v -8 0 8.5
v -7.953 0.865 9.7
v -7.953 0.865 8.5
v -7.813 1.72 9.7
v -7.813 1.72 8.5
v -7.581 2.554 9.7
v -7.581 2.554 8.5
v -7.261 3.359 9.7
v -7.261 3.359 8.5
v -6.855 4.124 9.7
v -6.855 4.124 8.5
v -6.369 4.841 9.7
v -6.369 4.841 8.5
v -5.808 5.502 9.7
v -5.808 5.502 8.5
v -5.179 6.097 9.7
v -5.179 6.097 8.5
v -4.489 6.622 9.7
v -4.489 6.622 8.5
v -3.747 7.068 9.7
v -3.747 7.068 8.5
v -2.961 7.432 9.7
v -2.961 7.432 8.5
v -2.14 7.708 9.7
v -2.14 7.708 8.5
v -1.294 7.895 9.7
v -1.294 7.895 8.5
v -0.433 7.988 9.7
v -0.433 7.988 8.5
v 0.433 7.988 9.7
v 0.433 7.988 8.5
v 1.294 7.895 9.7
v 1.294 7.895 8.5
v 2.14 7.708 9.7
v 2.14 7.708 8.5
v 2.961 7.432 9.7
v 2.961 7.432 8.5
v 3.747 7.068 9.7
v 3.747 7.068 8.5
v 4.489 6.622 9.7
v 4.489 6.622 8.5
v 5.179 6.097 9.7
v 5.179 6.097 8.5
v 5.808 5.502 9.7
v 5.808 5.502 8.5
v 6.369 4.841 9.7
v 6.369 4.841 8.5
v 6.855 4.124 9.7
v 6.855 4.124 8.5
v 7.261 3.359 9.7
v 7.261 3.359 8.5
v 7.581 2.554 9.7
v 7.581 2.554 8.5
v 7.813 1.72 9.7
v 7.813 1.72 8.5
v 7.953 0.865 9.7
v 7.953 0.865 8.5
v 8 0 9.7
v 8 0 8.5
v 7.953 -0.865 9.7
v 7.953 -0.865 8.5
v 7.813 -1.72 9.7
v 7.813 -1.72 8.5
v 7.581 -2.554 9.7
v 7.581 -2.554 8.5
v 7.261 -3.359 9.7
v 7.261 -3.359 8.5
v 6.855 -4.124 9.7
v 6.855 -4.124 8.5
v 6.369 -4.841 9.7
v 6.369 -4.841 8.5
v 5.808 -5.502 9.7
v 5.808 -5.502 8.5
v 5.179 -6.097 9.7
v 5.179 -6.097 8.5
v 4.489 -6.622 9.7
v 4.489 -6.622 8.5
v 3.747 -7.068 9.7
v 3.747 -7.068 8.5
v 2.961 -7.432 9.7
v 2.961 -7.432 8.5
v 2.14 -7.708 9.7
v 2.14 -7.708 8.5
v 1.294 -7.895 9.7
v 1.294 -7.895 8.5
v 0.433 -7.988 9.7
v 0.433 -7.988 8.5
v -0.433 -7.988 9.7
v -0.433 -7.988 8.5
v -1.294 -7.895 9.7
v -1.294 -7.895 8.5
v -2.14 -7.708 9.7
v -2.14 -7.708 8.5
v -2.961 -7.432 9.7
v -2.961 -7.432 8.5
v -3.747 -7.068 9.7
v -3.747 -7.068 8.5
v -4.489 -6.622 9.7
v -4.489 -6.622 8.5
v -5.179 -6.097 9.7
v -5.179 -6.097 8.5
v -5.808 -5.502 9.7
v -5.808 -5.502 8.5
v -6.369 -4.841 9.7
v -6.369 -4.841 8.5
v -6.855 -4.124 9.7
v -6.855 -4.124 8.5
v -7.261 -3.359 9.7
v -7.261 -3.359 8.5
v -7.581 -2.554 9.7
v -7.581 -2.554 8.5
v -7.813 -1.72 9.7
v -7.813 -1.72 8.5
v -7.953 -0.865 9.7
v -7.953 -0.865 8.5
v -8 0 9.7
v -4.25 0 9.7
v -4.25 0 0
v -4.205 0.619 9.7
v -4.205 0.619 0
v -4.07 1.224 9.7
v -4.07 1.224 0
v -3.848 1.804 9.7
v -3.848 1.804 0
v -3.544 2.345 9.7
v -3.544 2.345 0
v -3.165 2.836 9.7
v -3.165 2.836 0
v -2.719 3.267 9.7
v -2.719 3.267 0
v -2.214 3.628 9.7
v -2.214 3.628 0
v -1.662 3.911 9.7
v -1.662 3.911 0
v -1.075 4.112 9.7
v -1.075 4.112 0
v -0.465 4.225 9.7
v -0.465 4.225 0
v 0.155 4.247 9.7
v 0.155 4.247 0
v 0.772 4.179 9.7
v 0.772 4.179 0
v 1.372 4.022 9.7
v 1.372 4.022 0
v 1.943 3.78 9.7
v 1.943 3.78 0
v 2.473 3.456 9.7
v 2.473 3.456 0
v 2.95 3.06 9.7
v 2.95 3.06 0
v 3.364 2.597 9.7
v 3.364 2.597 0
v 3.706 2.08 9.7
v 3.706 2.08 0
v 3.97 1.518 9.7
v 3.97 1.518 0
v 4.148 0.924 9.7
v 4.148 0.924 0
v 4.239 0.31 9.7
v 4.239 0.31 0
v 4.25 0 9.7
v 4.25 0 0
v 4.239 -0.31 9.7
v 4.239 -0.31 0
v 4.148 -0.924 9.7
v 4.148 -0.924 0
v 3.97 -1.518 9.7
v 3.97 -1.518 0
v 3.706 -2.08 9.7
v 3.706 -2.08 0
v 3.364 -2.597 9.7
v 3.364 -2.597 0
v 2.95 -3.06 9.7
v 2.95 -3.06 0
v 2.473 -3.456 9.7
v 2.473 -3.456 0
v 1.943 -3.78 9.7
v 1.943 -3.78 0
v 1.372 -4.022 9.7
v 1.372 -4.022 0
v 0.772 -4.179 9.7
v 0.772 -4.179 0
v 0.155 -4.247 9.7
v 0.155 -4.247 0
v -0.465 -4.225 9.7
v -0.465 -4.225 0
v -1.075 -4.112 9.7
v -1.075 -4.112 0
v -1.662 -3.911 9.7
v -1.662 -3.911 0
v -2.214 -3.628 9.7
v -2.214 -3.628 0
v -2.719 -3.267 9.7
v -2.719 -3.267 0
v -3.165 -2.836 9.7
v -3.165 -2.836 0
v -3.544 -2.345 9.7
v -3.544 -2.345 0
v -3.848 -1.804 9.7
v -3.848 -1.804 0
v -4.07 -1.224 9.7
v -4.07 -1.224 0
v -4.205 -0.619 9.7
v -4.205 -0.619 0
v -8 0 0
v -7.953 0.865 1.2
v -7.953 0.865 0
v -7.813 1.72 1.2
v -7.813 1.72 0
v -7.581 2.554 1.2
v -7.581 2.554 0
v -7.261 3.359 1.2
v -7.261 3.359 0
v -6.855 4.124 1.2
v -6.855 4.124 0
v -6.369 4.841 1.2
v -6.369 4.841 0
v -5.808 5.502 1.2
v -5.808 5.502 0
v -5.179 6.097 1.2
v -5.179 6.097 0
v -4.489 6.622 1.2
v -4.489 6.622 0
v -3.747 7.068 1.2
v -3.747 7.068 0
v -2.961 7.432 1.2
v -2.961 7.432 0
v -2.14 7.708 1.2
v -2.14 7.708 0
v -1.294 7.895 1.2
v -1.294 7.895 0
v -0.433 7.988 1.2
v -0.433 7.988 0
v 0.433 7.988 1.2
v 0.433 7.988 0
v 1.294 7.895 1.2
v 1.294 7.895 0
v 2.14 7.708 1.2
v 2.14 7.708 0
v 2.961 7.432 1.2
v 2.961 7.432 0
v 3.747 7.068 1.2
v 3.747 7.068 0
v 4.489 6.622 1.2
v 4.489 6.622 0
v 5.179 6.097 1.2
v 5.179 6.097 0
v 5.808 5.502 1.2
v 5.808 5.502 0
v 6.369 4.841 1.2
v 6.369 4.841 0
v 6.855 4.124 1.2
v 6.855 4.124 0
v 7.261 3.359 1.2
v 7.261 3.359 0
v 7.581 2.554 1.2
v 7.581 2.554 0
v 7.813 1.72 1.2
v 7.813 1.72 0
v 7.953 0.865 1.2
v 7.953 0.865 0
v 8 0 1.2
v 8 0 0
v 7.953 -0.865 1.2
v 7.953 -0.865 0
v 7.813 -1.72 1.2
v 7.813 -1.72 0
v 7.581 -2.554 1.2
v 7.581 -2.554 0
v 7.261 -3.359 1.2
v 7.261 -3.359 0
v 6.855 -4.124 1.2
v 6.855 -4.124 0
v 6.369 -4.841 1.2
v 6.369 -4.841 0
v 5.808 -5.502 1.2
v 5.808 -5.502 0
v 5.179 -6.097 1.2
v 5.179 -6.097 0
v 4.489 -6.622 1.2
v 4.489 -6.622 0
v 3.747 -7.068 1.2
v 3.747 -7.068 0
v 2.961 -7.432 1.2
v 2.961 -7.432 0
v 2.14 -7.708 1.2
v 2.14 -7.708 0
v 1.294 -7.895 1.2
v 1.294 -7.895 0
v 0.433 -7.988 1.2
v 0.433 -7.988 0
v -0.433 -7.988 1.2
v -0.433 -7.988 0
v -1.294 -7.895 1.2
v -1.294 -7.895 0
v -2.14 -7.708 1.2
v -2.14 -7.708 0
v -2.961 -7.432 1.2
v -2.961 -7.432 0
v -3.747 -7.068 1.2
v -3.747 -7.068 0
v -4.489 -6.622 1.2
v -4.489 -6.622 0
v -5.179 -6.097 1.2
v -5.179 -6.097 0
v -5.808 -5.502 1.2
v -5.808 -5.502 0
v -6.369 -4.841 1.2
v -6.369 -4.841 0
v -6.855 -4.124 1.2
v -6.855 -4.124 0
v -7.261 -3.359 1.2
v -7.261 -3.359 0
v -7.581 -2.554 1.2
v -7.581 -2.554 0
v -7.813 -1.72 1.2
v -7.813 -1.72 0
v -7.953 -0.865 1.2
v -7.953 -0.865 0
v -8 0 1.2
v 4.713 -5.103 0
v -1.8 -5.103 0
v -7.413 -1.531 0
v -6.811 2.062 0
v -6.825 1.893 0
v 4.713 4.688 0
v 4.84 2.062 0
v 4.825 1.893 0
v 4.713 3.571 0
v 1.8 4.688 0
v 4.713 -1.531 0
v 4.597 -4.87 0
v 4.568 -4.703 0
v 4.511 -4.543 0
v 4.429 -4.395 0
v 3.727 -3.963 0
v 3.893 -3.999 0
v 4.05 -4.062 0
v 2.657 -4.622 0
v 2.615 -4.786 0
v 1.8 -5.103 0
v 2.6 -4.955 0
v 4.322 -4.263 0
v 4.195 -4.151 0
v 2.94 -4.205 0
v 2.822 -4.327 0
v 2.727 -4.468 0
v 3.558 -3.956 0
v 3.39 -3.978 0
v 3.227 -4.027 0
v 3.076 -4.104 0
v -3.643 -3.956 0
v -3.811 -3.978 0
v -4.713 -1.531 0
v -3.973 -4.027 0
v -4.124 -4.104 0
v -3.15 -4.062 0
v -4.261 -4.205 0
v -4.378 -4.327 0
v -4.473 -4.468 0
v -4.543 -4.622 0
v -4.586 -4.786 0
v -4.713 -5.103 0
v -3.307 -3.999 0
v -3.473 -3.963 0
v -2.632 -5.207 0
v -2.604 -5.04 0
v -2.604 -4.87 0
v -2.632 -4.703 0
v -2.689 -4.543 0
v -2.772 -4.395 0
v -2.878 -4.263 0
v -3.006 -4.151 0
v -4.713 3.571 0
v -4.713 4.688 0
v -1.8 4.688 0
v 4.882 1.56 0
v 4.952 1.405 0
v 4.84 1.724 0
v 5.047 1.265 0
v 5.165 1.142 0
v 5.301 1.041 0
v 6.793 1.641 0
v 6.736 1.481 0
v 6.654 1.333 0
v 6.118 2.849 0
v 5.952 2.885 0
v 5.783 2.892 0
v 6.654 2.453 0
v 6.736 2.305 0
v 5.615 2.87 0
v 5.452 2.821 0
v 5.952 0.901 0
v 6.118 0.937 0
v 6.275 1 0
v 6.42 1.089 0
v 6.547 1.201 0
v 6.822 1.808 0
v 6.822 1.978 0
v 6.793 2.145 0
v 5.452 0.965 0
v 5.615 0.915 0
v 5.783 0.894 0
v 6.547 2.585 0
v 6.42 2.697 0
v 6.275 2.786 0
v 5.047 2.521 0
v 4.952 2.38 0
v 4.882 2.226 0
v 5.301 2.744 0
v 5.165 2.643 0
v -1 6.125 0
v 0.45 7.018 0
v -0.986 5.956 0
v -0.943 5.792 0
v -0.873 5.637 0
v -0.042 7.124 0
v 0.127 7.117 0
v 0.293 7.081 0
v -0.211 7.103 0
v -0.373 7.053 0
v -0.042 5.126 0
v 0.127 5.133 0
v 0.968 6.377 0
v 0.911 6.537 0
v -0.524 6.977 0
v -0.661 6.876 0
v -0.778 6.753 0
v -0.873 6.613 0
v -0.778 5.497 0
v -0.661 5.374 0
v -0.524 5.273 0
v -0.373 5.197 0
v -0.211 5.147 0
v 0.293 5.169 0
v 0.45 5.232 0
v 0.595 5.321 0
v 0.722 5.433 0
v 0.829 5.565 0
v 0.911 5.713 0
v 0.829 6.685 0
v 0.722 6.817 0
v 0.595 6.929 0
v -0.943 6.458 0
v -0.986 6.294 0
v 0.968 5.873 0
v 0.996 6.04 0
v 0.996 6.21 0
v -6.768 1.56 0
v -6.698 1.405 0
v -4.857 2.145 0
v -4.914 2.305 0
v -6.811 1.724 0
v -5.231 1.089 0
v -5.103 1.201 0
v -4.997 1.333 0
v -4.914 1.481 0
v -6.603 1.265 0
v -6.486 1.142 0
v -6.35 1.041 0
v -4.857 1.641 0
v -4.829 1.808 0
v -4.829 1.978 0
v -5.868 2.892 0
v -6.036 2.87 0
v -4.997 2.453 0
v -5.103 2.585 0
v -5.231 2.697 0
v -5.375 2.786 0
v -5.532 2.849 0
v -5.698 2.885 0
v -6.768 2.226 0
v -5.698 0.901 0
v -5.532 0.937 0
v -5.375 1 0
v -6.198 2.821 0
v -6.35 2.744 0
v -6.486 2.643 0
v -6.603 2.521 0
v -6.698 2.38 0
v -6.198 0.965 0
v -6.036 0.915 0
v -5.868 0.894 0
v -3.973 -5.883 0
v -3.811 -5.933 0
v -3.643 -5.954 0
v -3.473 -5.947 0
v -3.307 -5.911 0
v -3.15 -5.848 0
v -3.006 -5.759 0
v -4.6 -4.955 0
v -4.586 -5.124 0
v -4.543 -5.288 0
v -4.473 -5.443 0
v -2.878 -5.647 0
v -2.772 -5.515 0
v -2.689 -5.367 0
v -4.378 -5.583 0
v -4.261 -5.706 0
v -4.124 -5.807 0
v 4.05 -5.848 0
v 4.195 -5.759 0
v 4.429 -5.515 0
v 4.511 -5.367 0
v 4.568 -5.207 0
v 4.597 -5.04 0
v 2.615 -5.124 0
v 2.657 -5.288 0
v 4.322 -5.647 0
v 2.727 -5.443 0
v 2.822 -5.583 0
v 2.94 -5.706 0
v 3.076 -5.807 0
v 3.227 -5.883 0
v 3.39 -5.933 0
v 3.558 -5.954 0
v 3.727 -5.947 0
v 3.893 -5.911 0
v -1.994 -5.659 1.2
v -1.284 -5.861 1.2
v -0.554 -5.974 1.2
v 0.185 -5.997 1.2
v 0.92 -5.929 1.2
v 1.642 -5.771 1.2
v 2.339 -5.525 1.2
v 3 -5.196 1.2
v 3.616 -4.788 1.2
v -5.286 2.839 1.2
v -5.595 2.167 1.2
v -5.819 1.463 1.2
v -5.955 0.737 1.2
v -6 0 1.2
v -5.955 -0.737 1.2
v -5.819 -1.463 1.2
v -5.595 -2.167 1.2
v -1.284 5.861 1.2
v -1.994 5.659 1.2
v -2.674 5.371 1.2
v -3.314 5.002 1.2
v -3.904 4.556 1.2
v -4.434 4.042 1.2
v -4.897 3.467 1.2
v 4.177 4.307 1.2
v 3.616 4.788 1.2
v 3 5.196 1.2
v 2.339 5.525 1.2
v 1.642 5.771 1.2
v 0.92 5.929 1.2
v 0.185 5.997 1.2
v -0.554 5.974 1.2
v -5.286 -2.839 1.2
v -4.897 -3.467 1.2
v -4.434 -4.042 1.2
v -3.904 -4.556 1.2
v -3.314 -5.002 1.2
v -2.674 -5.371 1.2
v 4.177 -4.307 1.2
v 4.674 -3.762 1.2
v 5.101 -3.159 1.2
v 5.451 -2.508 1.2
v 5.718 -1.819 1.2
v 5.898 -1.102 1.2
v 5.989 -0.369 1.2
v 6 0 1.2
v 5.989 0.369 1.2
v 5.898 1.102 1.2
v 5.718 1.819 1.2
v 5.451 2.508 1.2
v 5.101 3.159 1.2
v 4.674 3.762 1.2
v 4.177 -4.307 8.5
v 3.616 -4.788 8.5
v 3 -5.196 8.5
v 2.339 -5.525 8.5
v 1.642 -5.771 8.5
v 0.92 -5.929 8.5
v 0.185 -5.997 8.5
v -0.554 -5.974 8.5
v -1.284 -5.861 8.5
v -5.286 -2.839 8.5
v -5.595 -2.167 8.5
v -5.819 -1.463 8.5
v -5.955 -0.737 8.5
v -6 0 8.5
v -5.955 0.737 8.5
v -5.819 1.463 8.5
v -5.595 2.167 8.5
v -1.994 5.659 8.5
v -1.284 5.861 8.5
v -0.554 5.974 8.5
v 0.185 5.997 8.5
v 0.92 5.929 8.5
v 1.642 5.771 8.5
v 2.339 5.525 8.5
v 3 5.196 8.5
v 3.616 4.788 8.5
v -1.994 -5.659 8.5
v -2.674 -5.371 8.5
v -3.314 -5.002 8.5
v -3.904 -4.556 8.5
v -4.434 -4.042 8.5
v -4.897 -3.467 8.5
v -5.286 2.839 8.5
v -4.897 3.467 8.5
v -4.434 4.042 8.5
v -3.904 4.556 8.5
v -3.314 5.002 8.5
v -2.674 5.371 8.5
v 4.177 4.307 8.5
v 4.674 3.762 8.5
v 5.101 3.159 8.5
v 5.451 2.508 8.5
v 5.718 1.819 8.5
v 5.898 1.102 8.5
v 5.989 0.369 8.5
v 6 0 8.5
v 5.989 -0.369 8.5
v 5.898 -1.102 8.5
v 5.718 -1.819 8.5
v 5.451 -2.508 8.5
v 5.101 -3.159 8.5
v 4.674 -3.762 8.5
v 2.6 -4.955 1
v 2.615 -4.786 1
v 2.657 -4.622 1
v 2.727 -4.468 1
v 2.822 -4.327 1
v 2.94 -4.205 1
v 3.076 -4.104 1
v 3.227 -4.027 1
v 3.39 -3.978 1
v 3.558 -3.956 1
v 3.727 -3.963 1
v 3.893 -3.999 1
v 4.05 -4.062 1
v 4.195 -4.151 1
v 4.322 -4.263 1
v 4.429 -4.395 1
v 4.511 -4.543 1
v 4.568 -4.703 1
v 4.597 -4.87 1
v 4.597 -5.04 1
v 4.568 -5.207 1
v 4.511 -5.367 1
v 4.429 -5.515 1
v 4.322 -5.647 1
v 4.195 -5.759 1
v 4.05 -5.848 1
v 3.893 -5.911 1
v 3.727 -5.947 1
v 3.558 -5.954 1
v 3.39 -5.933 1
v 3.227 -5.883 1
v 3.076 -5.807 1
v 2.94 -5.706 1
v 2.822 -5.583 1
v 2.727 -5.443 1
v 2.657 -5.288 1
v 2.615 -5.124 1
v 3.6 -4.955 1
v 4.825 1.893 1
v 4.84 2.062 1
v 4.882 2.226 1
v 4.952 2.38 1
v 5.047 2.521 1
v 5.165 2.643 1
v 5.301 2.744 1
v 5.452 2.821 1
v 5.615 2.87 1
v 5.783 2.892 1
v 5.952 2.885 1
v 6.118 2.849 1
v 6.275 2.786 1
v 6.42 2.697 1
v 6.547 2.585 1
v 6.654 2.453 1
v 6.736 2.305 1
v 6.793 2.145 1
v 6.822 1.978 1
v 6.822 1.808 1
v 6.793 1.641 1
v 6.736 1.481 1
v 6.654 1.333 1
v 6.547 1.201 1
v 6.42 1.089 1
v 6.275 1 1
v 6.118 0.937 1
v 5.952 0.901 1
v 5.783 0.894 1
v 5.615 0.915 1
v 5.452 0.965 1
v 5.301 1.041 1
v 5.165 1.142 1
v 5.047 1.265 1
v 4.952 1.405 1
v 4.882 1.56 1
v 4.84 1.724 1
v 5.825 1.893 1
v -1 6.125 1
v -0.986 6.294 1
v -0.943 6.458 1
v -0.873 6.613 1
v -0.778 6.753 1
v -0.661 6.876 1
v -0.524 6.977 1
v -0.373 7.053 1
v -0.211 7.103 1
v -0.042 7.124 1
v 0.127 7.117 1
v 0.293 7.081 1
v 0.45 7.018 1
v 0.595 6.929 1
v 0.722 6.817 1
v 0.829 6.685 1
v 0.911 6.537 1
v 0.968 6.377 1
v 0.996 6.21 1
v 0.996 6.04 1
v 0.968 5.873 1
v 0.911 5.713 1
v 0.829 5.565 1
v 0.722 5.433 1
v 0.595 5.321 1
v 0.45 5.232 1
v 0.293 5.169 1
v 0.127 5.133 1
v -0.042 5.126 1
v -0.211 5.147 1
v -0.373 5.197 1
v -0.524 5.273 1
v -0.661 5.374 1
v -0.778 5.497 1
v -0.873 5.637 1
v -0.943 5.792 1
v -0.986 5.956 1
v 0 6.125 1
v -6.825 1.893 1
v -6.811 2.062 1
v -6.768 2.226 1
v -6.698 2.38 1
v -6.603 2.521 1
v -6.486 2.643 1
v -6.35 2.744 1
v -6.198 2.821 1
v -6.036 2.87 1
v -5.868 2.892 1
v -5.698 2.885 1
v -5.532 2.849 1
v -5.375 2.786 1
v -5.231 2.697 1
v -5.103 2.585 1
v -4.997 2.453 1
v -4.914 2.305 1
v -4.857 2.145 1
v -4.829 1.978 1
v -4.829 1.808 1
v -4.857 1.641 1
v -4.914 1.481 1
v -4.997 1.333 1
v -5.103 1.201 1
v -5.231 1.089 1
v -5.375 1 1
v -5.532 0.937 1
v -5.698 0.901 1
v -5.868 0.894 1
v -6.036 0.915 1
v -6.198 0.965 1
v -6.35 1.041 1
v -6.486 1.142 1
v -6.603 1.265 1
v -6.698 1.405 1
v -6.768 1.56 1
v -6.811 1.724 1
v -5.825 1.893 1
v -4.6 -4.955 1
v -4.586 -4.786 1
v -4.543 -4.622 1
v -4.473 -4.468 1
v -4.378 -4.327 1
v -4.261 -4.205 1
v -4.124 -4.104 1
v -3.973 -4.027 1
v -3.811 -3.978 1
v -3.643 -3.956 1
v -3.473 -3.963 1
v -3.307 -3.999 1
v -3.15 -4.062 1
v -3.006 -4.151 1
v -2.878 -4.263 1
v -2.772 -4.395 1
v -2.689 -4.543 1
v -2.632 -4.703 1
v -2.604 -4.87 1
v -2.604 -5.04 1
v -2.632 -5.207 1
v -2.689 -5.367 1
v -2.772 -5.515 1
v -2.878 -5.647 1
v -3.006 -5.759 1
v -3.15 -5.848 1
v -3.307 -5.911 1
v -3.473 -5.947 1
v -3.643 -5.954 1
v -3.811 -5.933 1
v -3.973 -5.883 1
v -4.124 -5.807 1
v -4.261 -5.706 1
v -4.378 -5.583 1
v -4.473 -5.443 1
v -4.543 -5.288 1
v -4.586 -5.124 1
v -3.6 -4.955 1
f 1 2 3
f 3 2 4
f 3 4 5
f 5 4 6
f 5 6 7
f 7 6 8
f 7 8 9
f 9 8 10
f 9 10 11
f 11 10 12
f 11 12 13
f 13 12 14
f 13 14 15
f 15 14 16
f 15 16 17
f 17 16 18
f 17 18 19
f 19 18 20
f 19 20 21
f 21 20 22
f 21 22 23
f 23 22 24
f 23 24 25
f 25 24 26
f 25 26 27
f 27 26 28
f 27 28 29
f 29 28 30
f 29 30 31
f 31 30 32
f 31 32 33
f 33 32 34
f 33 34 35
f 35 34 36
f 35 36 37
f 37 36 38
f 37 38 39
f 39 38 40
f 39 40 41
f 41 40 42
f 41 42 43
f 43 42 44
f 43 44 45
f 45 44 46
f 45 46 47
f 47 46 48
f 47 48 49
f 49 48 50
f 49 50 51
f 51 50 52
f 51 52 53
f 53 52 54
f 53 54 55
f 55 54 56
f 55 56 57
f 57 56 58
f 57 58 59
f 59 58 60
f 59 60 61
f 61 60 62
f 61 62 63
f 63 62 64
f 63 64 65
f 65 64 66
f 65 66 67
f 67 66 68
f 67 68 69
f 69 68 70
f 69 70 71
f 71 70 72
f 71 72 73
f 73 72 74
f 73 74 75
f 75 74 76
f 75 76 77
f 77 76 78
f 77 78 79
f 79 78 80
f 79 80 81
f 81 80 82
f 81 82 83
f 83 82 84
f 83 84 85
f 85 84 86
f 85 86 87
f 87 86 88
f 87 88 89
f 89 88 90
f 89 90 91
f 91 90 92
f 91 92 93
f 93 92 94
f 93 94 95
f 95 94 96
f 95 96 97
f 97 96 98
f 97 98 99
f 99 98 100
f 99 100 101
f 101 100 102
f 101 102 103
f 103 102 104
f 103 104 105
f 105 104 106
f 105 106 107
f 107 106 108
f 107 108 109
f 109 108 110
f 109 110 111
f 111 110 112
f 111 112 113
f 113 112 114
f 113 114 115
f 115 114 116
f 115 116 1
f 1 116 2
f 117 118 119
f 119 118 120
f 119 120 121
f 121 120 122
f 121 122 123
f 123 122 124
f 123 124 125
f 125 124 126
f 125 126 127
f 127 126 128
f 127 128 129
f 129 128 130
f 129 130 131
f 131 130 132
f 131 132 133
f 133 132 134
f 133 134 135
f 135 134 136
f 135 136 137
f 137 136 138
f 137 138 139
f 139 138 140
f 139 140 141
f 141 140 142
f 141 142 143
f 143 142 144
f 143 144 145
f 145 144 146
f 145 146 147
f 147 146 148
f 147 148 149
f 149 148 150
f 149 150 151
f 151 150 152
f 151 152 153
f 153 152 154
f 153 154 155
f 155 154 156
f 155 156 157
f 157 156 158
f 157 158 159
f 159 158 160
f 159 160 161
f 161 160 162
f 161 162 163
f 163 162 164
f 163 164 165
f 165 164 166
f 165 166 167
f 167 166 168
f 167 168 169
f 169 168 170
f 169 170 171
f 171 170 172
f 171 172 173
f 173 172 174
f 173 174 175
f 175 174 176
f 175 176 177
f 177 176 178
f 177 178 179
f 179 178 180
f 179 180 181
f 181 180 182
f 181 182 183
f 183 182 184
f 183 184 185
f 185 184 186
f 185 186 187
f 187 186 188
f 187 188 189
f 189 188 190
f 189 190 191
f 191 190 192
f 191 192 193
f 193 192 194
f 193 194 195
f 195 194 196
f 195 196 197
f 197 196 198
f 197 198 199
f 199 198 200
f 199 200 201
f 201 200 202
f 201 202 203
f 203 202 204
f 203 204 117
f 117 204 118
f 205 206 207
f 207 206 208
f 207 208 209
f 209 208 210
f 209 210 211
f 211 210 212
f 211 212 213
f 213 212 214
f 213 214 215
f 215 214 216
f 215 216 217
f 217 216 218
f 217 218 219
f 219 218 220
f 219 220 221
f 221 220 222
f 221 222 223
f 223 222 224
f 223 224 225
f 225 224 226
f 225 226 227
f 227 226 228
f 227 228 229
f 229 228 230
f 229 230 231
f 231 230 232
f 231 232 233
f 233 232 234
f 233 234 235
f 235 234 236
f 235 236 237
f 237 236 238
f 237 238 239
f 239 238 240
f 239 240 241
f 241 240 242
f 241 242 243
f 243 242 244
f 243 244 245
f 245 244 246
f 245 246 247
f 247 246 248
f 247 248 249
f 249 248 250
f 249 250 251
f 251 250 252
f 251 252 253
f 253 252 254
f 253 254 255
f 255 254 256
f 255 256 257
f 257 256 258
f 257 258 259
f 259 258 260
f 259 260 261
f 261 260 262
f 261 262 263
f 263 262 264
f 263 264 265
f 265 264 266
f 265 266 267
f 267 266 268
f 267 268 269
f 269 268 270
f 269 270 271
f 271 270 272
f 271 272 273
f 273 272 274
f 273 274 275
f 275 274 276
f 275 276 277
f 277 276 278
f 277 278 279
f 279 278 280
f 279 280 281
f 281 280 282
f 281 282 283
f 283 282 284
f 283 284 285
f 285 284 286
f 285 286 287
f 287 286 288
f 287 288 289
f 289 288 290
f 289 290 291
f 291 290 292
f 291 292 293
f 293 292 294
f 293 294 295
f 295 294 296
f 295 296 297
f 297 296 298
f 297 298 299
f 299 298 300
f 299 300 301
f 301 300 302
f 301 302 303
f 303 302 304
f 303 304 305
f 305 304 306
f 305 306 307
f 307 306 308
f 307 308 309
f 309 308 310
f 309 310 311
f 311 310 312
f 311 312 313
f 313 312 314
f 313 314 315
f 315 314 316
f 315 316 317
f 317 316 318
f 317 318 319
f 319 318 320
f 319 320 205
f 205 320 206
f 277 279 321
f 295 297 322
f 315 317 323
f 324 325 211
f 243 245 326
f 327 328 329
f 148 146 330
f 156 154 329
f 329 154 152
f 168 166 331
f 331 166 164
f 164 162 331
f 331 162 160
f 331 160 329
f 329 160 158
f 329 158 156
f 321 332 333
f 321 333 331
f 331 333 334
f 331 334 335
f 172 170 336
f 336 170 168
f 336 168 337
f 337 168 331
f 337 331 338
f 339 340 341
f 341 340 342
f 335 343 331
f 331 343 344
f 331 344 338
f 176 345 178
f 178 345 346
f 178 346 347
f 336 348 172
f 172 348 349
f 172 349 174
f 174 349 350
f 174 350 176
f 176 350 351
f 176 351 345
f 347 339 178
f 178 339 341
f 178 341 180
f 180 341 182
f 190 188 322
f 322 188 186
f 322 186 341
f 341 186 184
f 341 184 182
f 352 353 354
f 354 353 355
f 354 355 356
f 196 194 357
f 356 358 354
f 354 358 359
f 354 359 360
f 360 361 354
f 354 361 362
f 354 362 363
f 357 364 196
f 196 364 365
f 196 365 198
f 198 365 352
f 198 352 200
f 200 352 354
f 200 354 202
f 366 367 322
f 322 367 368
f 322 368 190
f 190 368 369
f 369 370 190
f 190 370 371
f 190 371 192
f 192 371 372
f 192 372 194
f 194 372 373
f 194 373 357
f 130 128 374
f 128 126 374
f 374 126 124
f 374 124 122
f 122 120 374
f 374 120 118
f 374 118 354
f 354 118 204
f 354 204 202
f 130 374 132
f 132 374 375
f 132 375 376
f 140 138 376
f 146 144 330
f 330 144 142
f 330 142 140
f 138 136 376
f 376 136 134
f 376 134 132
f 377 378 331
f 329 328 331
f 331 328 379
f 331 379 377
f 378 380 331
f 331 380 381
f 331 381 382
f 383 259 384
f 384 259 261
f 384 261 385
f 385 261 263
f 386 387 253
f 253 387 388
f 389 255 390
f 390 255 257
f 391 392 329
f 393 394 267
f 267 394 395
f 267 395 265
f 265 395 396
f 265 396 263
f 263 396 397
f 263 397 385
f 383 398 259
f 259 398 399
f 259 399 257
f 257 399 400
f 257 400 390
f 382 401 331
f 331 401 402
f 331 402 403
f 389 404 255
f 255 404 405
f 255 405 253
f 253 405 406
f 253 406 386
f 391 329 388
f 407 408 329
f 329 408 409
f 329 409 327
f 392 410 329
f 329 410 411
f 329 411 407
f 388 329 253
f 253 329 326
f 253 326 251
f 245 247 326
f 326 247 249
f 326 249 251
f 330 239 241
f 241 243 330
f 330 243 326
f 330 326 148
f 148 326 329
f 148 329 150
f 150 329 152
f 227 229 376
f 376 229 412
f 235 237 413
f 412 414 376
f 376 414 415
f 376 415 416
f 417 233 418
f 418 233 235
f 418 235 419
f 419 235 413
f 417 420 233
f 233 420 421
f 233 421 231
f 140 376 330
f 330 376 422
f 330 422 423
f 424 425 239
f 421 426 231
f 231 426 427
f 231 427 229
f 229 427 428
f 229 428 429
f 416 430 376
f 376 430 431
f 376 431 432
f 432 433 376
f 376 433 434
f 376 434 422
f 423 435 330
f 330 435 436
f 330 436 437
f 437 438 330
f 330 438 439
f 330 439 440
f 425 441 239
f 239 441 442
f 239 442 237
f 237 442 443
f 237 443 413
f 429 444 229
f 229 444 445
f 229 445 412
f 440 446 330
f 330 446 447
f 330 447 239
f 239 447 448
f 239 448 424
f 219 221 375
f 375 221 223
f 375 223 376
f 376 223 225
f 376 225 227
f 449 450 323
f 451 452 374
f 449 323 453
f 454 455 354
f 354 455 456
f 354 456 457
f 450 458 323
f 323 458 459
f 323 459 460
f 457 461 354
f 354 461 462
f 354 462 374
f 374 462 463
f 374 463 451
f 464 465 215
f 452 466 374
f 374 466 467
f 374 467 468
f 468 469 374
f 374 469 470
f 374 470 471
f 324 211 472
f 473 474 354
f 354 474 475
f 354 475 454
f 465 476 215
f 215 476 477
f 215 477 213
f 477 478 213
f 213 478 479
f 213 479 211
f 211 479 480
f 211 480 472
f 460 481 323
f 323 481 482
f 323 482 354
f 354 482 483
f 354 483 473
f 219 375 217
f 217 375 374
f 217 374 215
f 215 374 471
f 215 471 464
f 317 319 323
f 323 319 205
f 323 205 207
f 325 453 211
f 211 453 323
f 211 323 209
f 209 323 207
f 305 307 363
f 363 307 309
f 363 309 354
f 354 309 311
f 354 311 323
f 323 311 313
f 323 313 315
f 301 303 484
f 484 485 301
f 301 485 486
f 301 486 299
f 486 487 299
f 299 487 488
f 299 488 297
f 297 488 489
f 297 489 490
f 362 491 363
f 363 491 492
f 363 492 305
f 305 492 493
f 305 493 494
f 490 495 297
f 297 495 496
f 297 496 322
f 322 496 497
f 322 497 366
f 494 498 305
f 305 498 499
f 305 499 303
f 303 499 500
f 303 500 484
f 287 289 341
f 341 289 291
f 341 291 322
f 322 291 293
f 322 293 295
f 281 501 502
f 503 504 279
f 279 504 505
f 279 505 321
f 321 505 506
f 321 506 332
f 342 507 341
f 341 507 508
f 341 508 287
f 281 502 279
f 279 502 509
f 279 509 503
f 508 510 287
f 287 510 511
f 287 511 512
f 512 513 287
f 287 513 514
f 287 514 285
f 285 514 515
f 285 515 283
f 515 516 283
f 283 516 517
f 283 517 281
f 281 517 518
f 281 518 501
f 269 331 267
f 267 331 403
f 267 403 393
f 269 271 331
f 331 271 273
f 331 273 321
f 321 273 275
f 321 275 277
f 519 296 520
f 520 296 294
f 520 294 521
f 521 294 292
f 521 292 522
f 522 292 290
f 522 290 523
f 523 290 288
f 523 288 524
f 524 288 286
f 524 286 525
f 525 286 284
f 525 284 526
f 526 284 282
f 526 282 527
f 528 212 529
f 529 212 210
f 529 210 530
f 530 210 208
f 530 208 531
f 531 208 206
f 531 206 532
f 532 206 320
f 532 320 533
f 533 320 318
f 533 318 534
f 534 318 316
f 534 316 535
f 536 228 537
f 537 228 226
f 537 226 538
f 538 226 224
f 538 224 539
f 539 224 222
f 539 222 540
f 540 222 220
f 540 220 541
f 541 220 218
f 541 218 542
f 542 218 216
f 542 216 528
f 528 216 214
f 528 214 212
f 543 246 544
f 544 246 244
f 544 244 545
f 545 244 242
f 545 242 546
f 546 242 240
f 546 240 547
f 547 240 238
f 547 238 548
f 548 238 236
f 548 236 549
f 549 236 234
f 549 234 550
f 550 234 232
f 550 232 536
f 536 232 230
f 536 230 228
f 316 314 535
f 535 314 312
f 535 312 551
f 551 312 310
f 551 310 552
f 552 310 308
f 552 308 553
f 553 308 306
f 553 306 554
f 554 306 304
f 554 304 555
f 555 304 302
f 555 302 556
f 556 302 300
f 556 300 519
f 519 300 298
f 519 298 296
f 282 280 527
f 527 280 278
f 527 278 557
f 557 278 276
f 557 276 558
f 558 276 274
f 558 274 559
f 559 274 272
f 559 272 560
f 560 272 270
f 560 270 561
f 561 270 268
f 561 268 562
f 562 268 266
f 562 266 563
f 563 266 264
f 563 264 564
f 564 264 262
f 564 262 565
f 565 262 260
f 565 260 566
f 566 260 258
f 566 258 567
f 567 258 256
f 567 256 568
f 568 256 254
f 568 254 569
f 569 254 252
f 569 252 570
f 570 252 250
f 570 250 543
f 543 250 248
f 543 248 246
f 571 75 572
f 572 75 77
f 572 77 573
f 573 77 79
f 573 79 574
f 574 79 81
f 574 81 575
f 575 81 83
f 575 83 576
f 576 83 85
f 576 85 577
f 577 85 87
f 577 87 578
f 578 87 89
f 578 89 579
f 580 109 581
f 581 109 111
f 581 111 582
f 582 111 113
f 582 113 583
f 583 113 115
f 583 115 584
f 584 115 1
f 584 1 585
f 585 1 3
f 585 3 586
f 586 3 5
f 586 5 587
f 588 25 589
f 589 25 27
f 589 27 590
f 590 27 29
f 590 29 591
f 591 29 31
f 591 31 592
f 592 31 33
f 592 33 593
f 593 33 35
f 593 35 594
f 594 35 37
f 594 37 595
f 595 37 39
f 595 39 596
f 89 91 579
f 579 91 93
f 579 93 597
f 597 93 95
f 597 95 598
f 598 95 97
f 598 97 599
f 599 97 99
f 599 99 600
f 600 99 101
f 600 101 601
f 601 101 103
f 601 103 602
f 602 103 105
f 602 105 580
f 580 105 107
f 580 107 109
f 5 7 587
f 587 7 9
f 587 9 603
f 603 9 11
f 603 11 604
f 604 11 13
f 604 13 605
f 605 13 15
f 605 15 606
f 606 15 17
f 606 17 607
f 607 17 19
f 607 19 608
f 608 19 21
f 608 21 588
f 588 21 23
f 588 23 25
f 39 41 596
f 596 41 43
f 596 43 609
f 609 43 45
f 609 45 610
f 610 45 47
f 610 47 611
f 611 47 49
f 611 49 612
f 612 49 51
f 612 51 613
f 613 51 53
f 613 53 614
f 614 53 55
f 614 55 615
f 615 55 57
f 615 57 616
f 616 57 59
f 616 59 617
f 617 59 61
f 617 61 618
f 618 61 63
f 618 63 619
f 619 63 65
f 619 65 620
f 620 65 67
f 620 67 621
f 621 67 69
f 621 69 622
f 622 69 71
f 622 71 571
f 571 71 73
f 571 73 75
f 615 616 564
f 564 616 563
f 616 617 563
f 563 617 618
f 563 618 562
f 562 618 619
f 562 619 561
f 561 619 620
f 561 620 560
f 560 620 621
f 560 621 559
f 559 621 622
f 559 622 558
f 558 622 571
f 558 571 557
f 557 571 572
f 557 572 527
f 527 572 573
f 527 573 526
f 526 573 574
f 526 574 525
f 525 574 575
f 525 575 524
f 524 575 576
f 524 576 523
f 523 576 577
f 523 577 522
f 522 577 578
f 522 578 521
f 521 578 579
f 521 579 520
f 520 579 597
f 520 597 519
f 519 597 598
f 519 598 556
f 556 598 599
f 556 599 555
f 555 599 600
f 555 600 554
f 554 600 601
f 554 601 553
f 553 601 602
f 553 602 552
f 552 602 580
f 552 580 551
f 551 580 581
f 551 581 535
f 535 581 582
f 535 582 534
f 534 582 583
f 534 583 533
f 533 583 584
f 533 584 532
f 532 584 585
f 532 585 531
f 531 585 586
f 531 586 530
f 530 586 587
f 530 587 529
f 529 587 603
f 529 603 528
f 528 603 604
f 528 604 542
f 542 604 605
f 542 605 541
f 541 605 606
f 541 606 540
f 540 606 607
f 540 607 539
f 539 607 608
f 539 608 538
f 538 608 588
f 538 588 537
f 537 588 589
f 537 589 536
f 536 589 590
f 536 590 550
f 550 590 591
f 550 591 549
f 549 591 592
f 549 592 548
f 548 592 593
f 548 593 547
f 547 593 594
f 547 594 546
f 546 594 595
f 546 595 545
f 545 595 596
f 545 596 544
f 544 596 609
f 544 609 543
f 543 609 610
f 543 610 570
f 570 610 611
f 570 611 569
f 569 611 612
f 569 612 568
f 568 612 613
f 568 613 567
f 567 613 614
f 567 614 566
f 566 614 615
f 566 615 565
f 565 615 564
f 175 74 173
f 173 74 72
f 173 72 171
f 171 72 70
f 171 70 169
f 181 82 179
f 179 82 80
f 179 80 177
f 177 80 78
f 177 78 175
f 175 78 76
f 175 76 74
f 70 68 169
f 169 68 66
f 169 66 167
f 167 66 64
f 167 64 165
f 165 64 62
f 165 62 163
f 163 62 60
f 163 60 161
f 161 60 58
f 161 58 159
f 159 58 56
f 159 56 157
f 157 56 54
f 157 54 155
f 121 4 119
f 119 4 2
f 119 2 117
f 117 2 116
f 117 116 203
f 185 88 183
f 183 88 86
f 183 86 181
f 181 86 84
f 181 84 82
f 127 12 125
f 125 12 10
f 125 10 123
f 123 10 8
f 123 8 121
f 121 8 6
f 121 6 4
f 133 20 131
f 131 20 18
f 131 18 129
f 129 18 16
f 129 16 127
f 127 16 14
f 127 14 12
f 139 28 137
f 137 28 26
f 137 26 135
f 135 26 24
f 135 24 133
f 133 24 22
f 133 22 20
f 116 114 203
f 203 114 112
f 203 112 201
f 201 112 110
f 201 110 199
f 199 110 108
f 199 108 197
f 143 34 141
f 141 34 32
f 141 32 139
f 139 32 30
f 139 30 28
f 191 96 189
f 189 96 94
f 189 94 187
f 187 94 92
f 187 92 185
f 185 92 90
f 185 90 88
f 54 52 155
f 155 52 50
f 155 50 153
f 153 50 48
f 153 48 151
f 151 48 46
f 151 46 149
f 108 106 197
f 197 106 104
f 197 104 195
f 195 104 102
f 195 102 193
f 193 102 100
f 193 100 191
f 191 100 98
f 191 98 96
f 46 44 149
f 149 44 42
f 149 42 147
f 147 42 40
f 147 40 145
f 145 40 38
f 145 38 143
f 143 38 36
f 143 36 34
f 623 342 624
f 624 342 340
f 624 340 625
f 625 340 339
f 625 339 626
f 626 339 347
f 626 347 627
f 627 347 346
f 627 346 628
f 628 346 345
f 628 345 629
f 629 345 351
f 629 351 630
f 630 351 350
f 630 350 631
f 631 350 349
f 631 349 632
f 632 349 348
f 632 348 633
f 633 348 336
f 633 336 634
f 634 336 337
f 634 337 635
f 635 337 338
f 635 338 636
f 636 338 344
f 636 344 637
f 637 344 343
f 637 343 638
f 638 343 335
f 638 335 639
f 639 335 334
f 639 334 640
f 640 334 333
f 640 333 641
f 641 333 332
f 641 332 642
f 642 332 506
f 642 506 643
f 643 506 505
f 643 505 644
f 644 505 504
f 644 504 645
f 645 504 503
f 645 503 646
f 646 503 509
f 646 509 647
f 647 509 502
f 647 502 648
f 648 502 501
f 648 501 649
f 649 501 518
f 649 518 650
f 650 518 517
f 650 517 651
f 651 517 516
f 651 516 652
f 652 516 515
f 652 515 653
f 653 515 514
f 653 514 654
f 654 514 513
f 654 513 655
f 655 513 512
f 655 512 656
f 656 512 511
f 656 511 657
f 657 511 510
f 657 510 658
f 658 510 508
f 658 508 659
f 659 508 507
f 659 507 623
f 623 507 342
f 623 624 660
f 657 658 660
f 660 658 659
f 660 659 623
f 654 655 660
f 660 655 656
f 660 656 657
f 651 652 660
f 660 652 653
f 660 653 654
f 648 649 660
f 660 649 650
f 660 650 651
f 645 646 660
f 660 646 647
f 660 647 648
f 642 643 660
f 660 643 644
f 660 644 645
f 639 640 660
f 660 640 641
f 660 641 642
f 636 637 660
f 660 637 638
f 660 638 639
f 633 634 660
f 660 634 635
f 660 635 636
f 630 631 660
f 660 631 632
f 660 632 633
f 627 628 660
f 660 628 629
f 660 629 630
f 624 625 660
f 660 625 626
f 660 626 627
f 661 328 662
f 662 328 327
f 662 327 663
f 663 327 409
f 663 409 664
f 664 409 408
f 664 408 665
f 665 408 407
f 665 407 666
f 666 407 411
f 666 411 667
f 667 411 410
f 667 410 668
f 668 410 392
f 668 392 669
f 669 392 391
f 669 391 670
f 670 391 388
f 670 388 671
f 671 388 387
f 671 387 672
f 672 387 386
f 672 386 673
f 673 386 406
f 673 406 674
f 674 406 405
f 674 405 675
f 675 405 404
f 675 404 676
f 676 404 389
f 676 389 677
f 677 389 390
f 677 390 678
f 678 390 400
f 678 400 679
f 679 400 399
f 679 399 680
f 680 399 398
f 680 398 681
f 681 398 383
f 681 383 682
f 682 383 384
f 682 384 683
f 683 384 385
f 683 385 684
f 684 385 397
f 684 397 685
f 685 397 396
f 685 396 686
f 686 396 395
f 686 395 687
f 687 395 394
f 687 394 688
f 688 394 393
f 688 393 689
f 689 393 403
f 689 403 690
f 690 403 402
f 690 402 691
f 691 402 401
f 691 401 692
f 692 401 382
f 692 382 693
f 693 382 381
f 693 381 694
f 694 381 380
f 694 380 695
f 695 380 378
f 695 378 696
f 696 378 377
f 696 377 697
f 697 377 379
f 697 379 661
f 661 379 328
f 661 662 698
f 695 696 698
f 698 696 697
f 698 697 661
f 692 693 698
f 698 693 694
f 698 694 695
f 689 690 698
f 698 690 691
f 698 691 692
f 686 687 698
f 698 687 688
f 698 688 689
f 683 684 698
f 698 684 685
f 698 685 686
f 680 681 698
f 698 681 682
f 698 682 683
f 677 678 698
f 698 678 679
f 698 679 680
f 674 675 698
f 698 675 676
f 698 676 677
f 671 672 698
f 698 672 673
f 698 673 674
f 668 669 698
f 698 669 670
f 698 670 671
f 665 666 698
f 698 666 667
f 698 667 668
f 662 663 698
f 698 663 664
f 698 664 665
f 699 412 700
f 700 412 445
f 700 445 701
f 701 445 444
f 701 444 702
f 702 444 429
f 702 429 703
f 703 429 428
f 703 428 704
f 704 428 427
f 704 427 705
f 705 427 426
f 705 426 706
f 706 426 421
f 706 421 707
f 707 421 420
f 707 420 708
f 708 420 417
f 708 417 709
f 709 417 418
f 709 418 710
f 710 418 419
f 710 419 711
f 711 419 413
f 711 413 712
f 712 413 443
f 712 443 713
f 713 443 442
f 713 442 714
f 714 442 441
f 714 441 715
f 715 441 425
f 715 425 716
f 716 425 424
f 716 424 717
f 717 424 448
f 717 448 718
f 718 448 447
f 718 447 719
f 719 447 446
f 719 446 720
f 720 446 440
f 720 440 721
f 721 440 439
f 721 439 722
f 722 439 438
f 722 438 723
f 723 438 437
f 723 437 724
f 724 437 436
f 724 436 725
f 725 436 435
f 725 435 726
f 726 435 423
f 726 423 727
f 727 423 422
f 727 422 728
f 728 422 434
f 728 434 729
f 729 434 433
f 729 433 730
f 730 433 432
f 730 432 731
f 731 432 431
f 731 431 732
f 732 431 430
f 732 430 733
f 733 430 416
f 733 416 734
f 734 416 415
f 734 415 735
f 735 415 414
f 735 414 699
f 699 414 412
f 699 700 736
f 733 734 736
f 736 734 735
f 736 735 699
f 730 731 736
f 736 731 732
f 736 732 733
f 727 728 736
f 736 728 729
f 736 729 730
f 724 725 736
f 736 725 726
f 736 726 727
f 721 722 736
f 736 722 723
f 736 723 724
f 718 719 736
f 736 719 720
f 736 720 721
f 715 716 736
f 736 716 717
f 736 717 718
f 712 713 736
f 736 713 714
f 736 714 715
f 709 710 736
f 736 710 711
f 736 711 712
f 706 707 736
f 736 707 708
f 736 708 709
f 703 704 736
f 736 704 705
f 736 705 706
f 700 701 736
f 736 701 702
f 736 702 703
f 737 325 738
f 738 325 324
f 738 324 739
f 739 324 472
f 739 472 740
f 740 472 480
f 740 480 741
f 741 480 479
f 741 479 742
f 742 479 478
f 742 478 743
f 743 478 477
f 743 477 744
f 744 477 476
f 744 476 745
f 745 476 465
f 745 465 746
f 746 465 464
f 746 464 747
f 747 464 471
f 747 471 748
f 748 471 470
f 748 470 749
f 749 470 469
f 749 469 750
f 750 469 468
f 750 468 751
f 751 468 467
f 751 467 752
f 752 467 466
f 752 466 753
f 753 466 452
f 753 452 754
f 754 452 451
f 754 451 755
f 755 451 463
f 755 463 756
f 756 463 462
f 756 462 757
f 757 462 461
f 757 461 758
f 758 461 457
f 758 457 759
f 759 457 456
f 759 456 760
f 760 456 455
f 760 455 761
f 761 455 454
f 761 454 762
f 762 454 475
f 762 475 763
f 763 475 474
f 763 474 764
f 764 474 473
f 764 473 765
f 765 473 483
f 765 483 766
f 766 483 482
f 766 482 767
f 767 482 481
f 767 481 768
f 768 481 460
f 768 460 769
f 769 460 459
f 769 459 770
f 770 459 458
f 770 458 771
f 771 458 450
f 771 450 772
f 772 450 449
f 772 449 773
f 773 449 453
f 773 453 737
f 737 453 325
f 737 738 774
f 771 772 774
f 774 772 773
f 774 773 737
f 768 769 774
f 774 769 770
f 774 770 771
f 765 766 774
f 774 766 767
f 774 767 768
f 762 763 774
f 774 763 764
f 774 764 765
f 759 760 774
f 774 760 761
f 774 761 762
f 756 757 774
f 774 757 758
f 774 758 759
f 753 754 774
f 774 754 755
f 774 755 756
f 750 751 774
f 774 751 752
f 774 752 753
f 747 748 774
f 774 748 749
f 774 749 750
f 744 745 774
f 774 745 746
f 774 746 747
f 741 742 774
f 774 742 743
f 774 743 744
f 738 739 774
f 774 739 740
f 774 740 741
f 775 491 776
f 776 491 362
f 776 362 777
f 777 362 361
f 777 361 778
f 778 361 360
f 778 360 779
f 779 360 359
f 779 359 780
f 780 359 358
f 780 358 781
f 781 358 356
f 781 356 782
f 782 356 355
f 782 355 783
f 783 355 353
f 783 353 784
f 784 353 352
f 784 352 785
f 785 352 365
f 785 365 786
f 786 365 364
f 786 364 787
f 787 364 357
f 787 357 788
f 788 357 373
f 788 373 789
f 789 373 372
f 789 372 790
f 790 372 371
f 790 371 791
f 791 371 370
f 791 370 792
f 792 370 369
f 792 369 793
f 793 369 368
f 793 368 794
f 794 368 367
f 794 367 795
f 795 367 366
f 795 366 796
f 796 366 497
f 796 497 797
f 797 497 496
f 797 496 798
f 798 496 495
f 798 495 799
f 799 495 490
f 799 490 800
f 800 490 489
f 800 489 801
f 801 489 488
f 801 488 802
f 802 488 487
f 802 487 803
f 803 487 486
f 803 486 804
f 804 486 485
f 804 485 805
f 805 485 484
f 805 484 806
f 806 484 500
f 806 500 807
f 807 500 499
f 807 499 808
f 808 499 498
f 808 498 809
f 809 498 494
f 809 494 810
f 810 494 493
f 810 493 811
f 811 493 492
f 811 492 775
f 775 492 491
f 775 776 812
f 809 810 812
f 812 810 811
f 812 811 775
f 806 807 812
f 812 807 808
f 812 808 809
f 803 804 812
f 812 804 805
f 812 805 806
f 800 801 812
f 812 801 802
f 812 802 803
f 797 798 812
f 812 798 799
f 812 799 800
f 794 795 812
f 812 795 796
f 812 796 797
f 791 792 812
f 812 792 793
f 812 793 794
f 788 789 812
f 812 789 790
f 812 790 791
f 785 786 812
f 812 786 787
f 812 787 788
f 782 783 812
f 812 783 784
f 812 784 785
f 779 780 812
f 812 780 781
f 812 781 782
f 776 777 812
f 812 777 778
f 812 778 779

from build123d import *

# Parameters (mm, degrees)
SKETCH2_R               = 8
SKETCH2_R_2             = 4.25
BOSS_EXTRUDE1_DEPTH     = 16
SKETCH3_OUTSIDE_W       = 23.542
SKETCH3_OUTSIDE_H       = 23.542
SKETCH3_OUTSIDE_R       = 6
CUT_EXTRUDE1_DEPTH      = 7.3
CUT_EXTRUDE2_REACH      = 26
CUT_EXTRUDE2_END_RADIUS = 4.25
SKETCH6_R               = 1.75
CUT_EXTRUDE3_REACH      = 26
CUT_EXTRUDE3_END_RADIUS = 4.25
SKETCH5_R               = 1.75
CUT_EXTRUDE4_START      = -5.75
SKETCH7_R               = 8
CUT_EXTRUDE4_DEPTH      = 5.75
CUT_EXTRUDE5_START      = -0.55
SKETCH9_R               = 8
CUT_EXTRUDE5_DEPTH      = 0.55
SKETCH10_R              = 1
CUT_EXTRUDE6_DEPTH      = 1


with BuildPart() as part:
    # Sketch2 → Boss-Extrude1 (new body)
    with BuildSketch(Plane.XY):
        Circle(SKETCH2_R)
        Circle(SKETCH2_R_2, mode=Mode.SUBTRACT)
    extrude(amount=BOSS_EXTRUDE1_DEPTH)

    # Sketch3 outside → Cut-Extrude1 (cut)
    with BuildSketch(Plane.XY.offset(1.2)):
        Rectangle(SKETCH3_OUTSIDE_W, SKETCH3_OUTSIDE_H)
        with Locations(Location((0, 0, 0), (0, 0, 180))):
            Circle(SKETCH3_OUTSIDE_R, mode=Mode.SUBTRACT)
    extrude(amount=CUT_EXTRUDE1_DEPTH, mode=Mode.SUBTRACT)

    # Cut-Extrude2: up to this cylinder (the profile starts outside it)
    cut_extrude2_end = Plane(origin=(0, 0, 12.25), z_dir=(0, 0, -1)) * Cylinder(CUT_EXTRUDE2_END_RADIUS, 61.5, mode=Mode.PRIVATE)
    # Sketch6 → Cut-Extrude2 (cut, up to the surface)
    with BuildSketch(Plane(origin=(8, 0, 0), x_dir=(0, 0, -1), z_dir=(1, 0, 0)), mode=Mode.PRIVATE) as cut_extrude2_sk1:
        with Locations((-12.25, 0)):
            Circle(SKETCH6_R)
    cut_extrude2_tool1 = extrude(cut_extrude2_sk1.sketch, amount=-CUT_EXTRUDE2_REACH, mode=Mode.PRIVATE) - cut_extrude2_end
    add(cut_extrude2_tool1.solids().sort_by_distance((8, 0, 12.25))[0], mode=Mode.SUBTRACT)

    # Cut-Extrude3: up to this cylinder (the profile starts outside it)
    cut_extrude3_end = Plane(origin=(0, 0, 12.25), z_dir=(0, 0, -1)) * Cylinder(CUT_EXTRUDE3_END_RADIUS, 61.5, mode=Mode.PRIVATE)
    # Sketch5 → Cut-Extrude3 (cut, up to the surface)
    with BuildSketch(Plane(origin=(0, 8, 0), x_dir=(1, 0, 0), z_dir=(0, 1, 0)), mode=Mode.PRIVATE) as cut_extrude3_sk1:
        with Locations(Location((0, -12.25, 0), (0, 0, 270))):
            Circle(SKETCH5_R)
    cut_extrude3_tool1 = extrude(cut_extrude3_sk1.sketch, amount=-CUT_EXTRUDE3_REACH, mode=Mode.PRIVATE) - cut_extrude3_end
    add(cut_extrude3_tool1.solids().sort_by_distance((0, 8, 12.25))[0], mode=Mode.SUBTRACT)

    # Sketch7 → Cut-Extrude4 (cut)
    with BuildSketch(Plane.XY.offset(16).offset(CUT_EXTRUDE4_START)):
        Circle(SKETCH7_R)
    extrude(amount=CUT_EXTRUDE4_DEPTH, mode=Mode.SUBTRACT)

    # Sketch9 → Cut-Extrude5 (cut)
    with BuildSketch(Plane.XY.offset(10.25).offset(CUT_EXTRUDE5_START)):
        Circle(SKETCH9_R)
    extrude(amount=CUT_EXTRUDE5_DEPTH, mode=Mode.SUBTRACT)

    # Sketch10 → Cut-Extrude6 (cut)
    with BuildSketch(Plane(origin=(0, 0, 0), x_dir=(-1, 0, 0), z_dir=(0, 0, -1))):
        with Locations((0, 6.125)):
            Circle(SKETCH10_R)
        with Locations((5.825221162, 1.892729091)):
            Circle(SKETCH10_R)
        with Locations((3.60018467, -4.955229091)):
            Circle(SKETCH10_R)
        with Locations((-3.60018467, -4.955229091)):
            Circle(SKETCH10_R)
        with Locations((-5.825221162, 1.892729091)):
            Circle(SKETCH10_R)
    extrude(amount=-CUT_EXTRUDE6_DEPTH, mode=Mode.SUBTRACT)


solid = part.part
